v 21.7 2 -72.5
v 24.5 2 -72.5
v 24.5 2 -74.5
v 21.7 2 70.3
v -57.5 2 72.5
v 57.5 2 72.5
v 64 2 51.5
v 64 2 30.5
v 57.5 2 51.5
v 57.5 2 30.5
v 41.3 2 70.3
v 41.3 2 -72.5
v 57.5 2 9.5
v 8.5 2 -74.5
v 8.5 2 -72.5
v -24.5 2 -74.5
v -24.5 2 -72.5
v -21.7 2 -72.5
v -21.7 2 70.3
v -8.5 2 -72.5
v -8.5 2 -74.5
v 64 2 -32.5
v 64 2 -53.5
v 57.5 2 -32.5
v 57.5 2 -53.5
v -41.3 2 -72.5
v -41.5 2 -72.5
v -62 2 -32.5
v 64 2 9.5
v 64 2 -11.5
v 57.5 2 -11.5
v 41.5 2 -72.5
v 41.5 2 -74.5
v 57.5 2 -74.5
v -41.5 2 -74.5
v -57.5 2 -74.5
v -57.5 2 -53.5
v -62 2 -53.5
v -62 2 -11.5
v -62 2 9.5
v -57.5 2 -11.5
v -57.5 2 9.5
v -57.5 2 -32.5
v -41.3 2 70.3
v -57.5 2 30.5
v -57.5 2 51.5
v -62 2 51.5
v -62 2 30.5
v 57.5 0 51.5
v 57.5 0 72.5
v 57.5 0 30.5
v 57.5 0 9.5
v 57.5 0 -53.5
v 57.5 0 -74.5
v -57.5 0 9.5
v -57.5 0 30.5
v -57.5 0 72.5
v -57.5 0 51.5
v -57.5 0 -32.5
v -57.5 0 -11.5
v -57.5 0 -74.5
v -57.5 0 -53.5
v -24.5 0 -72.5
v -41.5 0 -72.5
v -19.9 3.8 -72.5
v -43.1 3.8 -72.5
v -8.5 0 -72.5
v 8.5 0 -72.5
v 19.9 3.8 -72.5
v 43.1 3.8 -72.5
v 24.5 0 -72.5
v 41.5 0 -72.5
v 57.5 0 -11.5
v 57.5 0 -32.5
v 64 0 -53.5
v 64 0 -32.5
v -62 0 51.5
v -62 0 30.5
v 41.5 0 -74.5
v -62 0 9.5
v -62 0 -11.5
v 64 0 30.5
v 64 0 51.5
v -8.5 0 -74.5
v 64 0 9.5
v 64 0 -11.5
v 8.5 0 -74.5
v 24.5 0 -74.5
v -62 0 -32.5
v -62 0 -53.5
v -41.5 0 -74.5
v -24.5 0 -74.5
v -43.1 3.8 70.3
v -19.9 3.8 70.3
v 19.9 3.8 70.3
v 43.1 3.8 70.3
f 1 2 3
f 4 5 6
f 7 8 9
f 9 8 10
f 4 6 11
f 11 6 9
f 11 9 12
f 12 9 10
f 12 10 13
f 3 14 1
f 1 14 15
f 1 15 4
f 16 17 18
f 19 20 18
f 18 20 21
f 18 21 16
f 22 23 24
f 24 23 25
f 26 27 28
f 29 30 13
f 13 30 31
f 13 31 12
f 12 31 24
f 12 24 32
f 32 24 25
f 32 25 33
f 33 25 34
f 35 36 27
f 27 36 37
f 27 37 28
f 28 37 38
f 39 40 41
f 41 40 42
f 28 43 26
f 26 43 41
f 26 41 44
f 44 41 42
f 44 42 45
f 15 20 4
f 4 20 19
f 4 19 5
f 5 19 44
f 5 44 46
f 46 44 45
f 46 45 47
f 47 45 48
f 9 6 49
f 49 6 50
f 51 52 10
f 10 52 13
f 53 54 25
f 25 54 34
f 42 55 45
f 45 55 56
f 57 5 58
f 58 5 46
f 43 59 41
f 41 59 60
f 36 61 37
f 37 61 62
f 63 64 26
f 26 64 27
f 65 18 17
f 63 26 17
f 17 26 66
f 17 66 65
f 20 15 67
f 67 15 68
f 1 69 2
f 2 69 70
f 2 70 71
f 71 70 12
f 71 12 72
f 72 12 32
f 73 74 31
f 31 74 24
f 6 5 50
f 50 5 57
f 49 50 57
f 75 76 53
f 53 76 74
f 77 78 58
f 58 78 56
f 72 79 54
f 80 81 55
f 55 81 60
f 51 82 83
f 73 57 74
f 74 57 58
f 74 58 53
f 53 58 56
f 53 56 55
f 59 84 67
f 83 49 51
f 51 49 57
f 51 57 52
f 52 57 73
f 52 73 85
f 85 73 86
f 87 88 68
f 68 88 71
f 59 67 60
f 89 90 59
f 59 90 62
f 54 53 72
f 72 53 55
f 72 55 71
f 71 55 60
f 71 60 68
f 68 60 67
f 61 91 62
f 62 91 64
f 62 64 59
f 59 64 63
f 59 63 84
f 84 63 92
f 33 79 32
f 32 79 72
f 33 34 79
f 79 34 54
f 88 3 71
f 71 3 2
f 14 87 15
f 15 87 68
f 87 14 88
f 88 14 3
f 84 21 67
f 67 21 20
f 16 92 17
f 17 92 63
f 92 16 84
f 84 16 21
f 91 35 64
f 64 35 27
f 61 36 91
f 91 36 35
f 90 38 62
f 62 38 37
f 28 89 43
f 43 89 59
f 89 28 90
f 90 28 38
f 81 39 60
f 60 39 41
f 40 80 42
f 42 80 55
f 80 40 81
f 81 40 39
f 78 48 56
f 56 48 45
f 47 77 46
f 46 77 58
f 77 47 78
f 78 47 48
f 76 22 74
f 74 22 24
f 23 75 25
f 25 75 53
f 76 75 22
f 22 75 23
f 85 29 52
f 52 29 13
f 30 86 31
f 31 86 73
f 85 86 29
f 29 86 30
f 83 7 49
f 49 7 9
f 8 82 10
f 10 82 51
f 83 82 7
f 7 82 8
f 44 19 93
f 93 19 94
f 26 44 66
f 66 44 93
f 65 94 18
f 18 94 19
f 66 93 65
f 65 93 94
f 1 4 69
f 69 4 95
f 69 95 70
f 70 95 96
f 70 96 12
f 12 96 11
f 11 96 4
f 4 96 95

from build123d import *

# Parameters (mm, degrees)
SKETCH_4_W      = 115
SKETCH_4_H      = 145
EXTRUDE_1_DEPTH = 2
SKETCH_5_W      = 16
SKETCH_5_H      = 2
EXTRUDE_2_DEPTH = 2
SKETCH_6_W      = 21
SKETCH_6_H      = 2
EXTRUDE_3_DEPTH = 4.5
EXTRUDE_START   = -115
SKETCH_6_2_W    = 21
SKETCH_6_2_H    = 2
EXTRUDE_4_DEPTH = 6.5
EXTRUDE_START_2 = -2.2
EXTRUDE_5_DEPTH = 142.8


with BuildPart() as part:
    # 草图4 → 凸台-拉伸1 (new body)
    with BuildSketch(Plane(origin=(0, 0, 0), x_dir=(1, 0, 0), z_dir=(0, 1, 0))):
        Rectangle(SKETCH_4_W, SKETCH_4_H)
    extrude(amount=EXTRUDE_1_DEPTH)

    # 草图5 → 凸台-拉伸2 (add)
    with BuildSketch(Plane(origin=(0, 0, -72.5), x_dir=(-1, 0, 0), z_dir=(0, 0, -1))):
        with Locations((-49.5, 1)):
            Rectangle(SKETCH_5_W, SKETCH_5_H)
        with Locations((-16.5, 1)):
            Rectangle(SKETCH_5_W, SKETCH_5_H)
        with Locations((16.5, 1)):
            Rectangle(SKETCH_5_W, SKETCH_5_H)
        with Locations((49.5, 1)):
            Rectangle(SKETCH_5_W, SKETCH_5_H)
    extrude(amount=EXTRUDE_2_DEPTH)

    # 草图6 → 凸台-拉伸3 (add)
    with BuildSketch(Plane.ZY.offset(57.5)):
        with Locations((-43, 1)):
            Rectangle(SKETCH_6_W, SKETCH_6_H)
        with Locations((-1, 1)):
            Rectangle(SKETCH_6_W, SKETCH_6_H)
        with Locations((41, 1)):
            Rectangle(SKETCH_6_W, SKETCH_6_H)
    extrude(amount=EXTRUDE_3_DEPTH)

    # 草图6<2> → 凸台-拉伸4 (add)
    with BuildSketch(Plane.ZY.offset(57.5).offset(EXTRUDE_START)):
        with Locations((-43, 1)):
            Rectangle(SKETCH_6_2_W, SKETCH_6_2_H)
        with Locations((-1, 1)):
            Rectangle(SKETCH_6_2_W, SKETCH_6_2_H)
        with Locations((41, 1)):
            Rectangle(SKETCH_6_2_W, SKETCH_6_2_H)
    extrude(amount=-EXTRUDE_4_DEPTH)

    # 草图8 → 凸台-拉伸5 (add)
    with BuildSketch(Plane.XY.offset(72.5).offset(EXTRUDE_START_2)):
        Polygon((-43.1, 3.8), (-41.3, 2), (-21.7, 2), (-19.9, 3.8), (-21.7, 3.8), (-41.3, 3.8), align=None)
        Polygon((21.7, 2), (41.3, 2), (43.1, 3.8), (41.3, 3.8), (21.7, 3.8), (19.9, 3.8), align=None)
    extrude(amount=-EXTRUDE_5_DEPTH)


solid = part.part
